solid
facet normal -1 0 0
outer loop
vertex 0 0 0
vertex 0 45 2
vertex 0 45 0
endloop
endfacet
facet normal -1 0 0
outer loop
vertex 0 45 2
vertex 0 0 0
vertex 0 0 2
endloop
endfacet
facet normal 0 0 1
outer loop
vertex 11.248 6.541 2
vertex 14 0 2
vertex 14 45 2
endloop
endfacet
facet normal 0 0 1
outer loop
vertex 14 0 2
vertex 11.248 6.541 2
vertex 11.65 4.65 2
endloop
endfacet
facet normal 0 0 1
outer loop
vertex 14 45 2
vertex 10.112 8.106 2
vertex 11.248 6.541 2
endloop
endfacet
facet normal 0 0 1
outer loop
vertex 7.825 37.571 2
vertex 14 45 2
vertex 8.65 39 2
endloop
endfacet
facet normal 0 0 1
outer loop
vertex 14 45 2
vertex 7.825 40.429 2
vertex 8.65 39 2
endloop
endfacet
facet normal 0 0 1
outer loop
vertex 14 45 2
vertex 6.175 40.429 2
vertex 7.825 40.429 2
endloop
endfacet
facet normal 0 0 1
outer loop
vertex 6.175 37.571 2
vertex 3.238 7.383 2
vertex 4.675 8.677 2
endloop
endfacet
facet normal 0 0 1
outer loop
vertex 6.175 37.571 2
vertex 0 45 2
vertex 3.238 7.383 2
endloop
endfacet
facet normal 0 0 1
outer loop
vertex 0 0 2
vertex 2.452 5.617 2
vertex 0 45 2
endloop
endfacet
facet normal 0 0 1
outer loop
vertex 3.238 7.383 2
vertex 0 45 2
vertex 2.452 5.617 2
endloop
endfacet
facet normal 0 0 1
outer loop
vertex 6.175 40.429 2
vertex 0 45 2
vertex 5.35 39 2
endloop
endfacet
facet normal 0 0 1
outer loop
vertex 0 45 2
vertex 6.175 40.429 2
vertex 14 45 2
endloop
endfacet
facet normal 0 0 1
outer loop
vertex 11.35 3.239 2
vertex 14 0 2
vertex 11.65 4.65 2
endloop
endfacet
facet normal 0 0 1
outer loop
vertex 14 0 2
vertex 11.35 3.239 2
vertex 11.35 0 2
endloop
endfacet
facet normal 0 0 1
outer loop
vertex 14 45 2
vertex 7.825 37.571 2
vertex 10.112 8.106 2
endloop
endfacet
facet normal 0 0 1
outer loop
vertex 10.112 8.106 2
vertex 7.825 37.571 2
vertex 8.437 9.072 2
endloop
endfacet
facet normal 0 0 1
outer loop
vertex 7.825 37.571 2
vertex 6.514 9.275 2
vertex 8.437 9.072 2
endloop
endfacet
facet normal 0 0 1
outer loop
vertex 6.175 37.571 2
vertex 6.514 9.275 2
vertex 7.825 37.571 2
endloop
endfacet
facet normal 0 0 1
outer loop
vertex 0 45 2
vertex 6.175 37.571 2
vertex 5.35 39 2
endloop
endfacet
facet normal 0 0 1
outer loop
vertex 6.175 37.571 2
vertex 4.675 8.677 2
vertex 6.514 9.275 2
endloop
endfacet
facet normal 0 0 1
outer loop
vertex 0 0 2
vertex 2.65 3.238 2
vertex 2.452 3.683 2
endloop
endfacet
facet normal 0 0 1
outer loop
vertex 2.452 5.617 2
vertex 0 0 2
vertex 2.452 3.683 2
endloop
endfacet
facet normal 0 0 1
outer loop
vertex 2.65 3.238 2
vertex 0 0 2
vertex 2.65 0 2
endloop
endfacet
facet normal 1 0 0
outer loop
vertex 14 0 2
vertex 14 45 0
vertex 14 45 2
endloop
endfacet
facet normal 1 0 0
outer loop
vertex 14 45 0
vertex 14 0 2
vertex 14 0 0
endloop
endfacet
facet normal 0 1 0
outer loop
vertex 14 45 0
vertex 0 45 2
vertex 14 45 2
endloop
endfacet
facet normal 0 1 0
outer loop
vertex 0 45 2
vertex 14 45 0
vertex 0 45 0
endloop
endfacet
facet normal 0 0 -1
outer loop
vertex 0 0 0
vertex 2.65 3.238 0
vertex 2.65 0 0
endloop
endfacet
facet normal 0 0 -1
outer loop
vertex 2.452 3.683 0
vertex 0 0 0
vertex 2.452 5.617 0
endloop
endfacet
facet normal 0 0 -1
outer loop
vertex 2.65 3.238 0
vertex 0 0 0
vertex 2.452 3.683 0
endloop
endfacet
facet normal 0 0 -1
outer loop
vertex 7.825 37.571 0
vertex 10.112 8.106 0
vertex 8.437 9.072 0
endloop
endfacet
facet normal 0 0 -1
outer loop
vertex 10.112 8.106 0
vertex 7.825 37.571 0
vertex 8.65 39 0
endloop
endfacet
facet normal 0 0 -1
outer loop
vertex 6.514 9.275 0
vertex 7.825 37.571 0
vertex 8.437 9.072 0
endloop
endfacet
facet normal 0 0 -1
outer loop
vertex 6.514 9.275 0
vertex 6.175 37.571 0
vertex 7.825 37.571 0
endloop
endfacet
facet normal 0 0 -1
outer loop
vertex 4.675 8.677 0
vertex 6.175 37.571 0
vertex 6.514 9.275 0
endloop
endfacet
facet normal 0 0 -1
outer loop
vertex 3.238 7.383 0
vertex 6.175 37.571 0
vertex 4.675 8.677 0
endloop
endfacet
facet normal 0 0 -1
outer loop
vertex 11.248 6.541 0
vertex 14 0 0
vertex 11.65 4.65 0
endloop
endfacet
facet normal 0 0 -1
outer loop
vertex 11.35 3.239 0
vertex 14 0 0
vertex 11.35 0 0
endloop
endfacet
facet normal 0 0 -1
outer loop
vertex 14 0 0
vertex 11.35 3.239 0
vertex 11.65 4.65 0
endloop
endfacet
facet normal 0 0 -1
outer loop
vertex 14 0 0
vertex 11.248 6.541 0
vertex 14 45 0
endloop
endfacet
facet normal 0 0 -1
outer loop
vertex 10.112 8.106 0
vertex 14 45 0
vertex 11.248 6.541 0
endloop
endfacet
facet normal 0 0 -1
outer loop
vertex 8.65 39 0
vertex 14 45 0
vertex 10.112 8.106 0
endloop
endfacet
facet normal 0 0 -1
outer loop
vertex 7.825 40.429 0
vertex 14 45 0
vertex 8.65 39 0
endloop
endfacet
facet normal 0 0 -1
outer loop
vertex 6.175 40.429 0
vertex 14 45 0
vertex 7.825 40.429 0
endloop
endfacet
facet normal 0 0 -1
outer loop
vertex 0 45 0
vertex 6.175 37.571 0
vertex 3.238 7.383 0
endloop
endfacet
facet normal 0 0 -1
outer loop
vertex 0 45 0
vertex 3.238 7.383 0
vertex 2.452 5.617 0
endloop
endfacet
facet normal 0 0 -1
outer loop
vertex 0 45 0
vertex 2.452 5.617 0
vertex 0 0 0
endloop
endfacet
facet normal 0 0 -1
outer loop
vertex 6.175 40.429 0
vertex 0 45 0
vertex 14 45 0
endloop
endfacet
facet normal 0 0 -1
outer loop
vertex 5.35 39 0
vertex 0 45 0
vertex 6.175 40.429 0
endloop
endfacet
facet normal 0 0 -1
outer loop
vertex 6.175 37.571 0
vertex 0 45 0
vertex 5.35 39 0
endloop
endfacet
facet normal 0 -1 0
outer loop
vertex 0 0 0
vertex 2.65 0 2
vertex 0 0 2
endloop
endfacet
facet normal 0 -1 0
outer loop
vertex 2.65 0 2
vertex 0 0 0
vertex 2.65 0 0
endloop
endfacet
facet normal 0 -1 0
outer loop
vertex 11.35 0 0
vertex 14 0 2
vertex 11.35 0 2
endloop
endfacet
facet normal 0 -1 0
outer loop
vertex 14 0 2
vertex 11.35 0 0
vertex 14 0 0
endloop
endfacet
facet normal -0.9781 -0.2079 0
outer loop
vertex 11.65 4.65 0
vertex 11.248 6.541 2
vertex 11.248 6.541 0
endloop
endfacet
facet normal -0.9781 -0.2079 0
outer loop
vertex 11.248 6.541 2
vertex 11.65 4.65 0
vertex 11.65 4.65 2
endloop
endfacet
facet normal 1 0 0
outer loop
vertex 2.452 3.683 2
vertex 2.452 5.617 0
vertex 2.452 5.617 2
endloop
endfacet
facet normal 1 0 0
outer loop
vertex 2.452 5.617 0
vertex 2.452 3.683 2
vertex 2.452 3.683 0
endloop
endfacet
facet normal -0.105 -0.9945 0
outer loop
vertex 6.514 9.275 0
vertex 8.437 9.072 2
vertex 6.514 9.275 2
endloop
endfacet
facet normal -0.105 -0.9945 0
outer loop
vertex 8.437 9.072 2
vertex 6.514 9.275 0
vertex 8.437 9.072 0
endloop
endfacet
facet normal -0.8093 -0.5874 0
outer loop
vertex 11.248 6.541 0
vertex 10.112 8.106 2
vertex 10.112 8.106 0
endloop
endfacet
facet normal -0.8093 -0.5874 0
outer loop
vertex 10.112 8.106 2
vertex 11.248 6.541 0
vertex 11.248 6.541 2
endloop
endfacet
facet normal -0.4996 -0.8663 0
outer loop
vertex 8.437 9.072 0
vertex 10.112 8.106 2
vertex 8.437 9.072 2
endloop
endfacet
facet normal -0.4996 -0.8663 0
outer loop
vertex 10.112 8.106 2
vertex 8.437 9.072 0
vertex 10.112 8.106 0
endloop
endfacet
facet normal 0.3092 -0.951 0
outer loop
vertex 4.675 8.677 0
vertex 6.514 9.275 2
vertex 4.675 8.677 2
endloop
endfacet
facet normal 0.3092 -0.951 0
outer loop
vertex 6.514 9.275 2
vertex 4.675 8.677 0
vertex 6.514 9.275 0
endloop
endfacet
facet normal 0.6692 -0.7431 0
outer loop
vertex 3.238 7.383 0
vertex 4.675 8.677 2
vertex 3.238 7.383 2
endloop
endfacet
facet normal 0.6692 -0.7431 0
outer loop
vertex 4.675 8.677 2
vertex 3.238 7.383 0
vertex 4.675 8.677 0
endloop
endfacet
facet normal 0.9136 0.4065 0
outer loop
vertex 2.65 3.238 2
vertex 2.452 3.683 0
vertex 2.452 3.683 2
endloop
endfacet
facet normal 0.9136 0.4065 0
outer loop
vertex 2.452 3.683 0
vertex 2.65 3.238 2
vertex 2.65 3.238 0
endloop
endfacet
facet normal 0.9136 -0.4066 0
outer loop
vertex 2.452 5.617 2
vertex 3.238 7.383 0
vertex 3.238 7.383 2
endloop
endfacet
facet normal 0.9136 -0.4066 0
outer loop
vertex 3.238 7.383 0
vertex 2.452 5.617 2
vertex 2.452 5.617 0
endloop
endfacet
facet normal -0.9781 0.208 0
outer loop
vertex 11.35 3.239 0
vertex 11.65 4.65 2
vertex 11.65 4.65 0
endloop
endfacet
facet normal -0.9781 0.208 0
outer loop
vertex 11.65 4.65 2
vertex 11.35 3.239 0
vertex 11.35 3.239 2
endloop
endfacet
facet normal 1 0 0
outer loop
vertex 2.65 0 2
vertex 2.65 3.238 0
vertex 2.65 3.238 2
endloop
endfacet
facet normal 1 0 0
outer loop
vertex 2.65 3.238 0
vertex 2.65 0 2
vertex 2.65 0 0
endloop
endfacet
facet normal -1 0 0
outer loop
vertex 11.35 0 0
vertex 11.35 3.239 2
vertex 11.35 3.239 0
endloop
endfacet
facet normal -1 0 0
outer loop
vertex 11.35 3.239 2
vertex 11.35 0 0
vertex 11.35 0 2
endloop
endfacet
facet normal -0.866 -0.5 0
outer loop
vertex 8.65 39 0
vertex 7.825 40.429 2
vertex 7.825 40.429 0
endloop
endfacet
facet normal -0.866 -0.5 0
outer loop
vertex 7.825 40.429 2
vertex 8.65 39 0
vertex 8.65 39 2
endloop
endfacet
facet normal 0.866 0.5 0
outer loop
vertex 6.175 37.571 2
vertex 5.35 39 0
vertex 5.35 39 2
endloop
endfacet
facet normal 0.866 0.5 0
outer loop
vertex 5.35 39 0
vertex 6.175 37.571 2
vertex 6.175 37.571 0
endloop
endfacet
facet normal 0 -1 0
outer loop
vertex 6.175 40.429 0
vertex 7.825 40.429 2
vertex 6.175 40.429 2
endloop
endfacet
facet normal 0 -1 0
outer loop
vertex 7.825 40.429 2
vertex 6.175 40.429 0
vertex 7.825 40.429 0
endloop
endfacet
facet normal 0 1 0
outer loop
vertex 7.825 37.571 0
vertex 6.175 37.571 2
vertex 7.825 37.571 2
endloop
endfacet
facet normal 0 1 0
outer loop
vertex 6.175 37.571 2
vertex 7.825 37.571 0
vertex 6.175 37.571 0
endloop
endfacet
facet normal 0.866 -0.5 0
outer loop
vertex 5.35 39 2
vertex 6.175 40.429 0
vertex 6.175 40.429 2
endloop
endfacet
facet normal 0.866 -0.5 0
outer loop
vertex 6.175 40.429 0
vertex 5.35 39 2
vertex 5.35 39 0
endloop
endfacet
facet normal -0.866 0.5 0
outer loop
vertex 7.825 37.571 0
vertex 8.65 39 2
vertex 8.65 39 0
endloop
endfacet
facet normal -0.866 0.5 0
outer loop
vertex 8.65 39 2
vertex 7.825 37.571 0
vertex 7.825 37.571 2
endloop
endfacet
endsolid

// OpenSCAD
nozzle_d = 9.3;
nozzle_cutout = 8.7;

//bracket
bracket_w = 14;
bracket_t = 2;
bracket_l = 45;

//screw
m3=3.3;

difference(){
    cube([bracket_w, bracket_l, bracket_t]);
    translate([bracket_w/2, nozzle_d/2,0]){
        cylinder(h=bracket_t, r=nozzle_d/2);
    }
    translate([bracket_w/2-nozzle_cutout/2, 0,0]){
        cube([nozzle_cutout,nozzle_d/2,bracket_t]);
    }
    translate([bracket_w/2, bracket_l-6,0]){
        cylinder(h=bracket_t, r=m3/2);
    }
}
